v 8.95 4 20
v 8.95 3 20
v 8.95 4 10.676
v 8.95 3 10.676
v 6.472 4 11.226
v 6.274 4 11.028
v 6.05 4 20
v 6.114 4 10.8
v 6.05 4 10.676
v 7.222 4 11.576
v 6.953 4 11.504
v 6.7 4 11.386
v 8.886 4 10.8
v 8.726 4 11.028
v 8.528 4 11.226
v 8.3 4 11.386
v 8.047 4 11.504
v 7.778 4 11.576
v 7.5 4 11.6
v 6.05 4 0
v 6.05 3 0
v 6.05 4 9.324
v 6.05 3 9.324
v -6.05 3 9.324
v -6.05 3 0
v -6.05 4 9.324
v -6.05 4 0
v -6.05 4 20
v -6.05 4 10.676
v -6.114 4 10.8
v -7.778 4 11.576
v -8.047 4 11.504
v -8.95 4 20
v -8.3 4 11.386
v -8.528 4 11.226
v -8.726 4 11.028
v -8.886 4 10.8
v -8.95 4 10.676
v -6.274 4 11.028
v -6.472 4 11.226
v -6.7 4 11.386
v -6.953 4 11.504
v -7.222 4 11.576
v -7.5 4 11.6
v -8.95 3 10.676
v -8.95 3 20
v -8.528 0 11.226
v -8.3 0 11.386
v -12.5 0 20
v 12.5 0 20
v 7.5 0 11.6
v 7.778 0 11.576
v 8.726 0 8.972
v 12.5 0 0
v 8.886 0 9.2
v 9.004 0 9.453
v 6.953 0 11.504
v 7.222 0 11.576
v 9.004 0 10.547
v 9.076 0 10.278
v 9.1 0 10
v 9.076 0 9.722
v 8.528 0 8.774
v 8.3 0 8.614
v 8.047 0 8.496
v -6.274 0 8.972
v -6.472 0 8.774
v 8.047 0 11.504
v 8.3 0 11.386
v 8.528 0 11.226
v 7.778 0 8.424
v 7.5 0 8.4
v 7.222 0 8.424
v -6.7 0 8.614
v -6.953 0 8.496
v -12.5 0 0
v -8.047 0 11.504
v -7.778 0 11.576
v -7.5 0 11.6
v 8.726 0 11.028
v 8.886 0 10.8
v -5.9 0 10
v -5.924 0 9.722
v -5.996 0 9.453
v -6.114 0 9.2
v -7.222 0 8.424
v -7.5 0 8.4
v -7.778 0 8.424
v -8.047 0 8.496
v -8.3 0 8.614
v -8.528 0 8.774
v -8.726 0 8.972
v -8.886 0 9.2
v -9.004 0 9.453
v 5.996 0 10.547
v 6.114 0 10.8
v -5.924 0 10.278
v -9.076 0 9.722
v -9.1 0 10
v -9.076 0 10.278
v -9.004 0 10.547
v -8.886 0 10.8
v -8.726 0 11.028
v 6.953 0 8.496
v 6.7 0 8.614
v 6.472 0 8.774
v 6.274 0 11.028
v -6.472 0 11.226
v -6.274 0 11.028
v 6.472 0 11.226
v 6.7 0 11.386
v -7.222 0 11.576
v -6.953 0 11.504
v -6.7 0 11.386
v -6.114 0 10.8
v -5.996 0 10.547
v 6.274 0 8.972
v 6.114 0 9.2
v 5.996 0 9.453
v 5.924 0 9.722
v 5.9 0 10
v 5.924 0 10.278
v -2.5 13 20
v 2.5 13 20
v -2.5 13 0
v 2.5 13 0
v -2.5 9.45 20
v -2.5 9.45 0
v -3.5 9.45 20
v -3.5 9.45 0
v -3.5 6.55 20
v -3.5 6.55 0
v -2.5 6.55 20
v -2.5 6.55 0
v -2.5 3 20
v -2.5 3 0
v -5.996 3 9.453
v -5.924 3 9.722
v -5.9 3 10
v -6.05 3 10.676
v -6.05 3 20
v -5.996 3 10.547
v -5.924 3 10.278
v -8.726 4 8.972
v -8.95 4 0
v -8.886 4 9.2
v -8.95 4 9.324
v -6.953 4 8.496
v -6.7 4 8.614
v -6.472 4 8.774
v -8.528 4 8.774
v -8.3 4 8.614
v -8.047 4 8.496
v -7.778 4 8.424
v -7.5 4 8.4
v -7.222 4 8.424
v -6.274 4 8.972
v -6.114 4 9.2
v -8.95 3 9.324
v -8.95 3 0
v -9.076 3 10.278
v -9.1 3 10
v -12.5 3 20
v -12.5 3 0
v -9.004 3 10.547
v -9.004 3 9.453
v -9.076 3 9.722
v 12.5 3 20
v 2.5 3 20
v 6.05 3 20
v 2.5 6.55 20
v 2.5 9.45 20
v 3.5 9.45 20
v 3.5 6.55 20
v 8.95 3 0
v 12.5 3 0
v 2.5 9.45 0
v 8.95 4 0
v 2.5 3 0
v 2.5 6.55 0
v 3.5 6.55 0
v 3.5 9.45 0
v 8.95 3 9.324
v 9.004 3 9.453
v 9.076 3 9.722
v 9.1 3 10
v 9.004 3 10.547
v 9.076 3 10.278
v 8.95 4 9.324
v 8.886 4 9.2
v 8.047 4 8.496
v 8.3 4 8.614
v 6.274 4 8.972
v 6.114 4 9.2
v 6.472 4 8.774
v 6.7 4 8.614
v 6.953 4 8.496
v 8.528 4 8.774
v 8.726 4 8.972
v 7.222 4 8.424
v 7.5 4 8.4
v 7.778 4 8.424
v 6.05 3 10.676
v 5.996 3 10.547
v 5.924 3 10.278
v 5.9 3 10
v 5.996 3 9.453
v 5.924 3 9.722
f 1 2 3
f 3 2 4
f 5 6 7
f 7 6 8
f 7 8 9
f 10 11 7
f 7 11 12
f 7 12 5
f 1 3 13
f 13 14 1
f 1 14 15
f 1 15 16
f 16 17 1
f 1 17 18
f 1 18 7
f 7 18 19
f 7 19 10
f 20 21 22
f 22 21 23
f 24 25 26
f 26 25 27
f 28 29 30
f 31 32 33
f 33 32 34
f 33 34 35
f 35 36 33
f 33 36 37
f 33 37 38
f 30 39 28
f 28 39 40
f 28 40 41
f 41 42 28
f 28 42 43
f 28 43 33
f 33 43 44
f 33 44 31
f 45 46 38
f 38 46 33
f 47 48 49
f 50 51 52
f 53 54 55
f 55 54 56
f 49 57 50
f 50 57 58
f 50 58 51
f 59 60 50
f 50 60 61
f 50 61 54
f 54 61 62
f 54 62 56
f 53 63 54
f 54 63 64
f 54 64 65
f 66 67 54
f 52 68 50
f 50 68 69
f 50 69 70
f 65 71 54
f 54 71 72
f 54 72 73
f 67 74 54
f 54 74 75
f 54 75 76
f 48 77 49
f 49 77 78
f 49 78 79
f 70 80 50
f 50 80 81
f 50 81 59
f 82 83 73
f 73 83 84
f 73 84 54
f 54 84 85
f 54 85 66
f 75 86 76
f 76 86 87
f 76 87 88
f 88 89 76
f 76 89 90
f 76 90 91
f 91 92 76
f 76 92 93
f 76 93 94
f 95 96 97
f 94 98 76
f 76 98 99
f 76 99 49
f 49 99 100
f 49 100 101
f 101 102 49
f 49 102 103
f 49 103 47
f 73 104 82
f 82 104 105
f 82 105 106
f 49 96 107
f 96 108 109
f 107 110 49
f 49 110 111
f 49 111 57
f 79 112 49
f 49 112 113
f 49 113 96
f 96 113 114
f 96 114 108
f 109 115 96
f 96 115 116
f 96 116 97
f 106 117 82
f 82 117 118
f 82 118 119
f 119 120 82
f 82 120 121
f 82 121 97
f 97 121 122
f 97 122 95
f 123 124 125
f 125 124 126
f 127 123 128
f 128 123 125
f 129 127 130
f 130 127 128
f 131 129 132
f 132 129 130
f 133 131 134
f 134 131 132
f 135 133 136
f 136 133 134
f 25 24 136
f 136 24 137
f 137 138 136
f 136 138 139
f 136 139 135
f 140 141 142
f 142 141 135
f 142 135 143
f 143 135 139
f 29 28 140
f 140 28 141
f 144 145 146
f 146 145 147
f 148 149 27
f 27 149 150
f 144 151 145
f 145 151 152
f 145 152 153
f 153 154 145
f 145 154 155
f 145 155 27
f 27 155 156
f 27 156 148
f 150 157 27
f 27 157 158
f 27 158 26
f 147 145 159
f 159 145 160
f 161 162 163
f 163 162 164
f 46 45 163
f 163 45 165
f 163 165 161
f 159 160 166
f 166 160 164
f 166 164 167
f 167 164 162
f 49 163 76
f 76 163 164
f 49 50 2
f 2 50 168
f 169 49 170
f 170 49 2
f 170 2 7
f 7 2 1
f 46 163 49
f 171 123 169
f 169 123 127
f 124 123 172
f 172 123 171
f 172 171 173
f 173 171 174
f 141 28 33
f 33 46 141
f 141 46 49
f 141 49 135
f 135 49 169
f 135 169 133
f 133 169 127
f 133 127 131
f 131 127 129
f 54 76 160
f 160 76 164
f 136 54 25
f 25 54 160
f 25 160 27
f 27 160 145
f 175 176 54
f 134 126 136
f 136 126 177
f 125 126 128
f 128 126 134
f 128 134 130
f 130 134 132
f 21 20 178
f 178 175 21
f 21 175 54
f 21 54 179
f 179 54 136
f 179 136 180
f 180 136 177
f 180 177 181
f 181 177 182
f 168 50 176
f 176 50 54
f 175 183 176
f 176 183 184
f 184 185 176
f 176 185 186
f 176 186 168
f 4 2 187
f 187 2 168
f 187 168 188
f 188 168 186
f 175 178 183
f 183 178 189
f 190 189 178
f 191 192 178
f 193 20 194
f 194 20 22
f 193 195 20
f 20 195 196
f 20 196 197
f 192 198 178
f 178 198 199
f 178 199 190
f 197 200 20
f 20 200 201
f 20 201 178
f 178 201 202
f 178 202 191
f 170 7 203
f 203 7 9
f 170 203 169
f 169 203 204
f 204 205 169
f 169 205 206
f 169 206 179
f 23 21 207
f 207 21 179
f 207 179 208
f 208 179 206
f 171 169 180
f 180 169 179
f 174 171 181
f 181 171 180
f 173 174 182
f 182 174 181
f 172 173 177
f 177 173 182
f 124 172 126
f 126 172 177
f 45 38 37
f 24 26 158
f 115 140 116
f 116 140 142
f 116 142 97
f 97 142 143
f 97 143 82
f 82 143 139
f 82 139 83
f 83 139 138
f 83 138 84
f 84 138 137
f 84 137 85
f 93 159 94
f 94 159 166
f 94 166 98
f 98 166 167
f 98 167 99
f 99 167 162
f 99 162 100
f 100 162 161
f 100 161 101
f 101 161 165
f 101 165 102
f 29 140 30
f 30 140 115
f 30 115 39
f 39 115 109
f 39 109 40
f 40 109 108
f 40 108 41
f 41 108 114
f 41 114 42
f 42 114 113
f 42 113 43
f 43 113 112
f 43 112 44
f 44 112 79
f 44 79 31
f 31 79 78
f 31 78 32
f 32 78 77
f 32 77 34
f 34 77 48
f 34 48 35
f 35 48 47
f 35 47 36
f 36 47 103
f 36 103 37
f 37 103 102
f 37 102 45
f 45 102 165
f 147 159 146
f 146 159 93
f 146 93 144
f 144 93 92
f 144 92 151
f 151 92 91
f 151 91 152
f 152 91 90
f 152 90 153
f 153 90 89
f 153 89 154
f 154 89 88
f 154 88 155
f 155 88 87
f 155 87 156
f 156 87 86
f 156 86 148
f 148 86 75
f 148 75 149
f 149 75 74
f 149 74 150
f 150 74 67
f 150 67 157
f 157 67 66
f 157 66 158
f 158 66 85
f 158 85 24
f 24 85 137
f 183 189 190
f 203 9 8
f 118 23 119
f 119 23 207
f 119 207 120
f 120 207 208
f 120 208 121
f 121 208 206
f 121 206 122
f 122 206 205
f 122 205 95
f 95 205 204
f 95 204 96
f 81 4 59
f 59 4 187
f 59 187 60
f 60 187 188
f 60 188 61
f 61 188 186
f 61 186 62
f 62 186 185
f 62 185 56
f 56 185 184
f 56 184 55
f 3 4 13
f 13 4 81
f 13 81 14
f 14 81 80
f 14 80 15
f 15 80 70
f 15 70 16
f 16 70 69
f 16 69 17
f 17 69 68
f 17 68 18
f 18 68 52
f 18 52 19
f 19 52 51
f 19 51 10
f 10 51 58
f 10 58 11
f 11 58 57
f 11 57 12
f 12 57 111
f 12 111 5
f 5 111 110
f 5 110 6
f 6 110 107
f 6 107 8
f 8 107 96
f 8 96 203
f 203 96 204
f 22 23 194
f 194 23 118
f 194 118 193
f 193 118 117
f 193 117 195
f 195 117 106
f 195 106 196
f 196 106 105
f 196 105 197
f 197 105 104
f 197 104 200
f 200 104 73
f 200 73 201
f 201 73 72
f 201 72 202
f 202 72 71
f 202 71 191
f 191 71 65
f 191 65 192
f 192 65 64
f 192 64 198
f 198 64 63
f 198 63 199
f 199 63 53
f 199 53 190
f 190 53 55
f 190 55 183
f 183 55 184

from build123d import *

# Parameters (mm, degrees)
MAIN_DEPTH         = 20
SKETCH1_R          = 1.6
CUT_EXTRUDE1_DEPTH = 14


with BuildPart() as part:
    # Esquisse1 → Main (new body)
    with BuildSketch(Plane.XY):
        Polygon((-12.5, 0), (-12.5, 3), (-8.95, 3), (-8.95, 4), (-6.05, 4), (-6.05, 3), (-2.5, 3), (-2.5, 6.55), (-3.5, 6.55), (-3.5, 9.45), (-2.5, 9.45), (-2.5, 13), (0, 13), (0, 0), align=None)
    main = extrude(amount=MAIN_DEPTH)

    # Symétrie1: Main across plane
    add(main.mirror(Plane(origin=(0, 0, 0), x_dir=(0, 0, 1), z_dir=(1, 0, 0))))

    # Sketch1 → Cut-Extrude1 (cut, through all)
    with BuildSketch(Plane.XZ):
        with Locations((-7.5, 10)):
            Circle(SKETCH1_R)
        with Locations((7.5, 10)):
            Circle(SKETCH1_R)
    extrude(amount=-CUT_EXTRUDE1_DEPTH, mode=Mode.SUBTRACT)


solid = part.part
